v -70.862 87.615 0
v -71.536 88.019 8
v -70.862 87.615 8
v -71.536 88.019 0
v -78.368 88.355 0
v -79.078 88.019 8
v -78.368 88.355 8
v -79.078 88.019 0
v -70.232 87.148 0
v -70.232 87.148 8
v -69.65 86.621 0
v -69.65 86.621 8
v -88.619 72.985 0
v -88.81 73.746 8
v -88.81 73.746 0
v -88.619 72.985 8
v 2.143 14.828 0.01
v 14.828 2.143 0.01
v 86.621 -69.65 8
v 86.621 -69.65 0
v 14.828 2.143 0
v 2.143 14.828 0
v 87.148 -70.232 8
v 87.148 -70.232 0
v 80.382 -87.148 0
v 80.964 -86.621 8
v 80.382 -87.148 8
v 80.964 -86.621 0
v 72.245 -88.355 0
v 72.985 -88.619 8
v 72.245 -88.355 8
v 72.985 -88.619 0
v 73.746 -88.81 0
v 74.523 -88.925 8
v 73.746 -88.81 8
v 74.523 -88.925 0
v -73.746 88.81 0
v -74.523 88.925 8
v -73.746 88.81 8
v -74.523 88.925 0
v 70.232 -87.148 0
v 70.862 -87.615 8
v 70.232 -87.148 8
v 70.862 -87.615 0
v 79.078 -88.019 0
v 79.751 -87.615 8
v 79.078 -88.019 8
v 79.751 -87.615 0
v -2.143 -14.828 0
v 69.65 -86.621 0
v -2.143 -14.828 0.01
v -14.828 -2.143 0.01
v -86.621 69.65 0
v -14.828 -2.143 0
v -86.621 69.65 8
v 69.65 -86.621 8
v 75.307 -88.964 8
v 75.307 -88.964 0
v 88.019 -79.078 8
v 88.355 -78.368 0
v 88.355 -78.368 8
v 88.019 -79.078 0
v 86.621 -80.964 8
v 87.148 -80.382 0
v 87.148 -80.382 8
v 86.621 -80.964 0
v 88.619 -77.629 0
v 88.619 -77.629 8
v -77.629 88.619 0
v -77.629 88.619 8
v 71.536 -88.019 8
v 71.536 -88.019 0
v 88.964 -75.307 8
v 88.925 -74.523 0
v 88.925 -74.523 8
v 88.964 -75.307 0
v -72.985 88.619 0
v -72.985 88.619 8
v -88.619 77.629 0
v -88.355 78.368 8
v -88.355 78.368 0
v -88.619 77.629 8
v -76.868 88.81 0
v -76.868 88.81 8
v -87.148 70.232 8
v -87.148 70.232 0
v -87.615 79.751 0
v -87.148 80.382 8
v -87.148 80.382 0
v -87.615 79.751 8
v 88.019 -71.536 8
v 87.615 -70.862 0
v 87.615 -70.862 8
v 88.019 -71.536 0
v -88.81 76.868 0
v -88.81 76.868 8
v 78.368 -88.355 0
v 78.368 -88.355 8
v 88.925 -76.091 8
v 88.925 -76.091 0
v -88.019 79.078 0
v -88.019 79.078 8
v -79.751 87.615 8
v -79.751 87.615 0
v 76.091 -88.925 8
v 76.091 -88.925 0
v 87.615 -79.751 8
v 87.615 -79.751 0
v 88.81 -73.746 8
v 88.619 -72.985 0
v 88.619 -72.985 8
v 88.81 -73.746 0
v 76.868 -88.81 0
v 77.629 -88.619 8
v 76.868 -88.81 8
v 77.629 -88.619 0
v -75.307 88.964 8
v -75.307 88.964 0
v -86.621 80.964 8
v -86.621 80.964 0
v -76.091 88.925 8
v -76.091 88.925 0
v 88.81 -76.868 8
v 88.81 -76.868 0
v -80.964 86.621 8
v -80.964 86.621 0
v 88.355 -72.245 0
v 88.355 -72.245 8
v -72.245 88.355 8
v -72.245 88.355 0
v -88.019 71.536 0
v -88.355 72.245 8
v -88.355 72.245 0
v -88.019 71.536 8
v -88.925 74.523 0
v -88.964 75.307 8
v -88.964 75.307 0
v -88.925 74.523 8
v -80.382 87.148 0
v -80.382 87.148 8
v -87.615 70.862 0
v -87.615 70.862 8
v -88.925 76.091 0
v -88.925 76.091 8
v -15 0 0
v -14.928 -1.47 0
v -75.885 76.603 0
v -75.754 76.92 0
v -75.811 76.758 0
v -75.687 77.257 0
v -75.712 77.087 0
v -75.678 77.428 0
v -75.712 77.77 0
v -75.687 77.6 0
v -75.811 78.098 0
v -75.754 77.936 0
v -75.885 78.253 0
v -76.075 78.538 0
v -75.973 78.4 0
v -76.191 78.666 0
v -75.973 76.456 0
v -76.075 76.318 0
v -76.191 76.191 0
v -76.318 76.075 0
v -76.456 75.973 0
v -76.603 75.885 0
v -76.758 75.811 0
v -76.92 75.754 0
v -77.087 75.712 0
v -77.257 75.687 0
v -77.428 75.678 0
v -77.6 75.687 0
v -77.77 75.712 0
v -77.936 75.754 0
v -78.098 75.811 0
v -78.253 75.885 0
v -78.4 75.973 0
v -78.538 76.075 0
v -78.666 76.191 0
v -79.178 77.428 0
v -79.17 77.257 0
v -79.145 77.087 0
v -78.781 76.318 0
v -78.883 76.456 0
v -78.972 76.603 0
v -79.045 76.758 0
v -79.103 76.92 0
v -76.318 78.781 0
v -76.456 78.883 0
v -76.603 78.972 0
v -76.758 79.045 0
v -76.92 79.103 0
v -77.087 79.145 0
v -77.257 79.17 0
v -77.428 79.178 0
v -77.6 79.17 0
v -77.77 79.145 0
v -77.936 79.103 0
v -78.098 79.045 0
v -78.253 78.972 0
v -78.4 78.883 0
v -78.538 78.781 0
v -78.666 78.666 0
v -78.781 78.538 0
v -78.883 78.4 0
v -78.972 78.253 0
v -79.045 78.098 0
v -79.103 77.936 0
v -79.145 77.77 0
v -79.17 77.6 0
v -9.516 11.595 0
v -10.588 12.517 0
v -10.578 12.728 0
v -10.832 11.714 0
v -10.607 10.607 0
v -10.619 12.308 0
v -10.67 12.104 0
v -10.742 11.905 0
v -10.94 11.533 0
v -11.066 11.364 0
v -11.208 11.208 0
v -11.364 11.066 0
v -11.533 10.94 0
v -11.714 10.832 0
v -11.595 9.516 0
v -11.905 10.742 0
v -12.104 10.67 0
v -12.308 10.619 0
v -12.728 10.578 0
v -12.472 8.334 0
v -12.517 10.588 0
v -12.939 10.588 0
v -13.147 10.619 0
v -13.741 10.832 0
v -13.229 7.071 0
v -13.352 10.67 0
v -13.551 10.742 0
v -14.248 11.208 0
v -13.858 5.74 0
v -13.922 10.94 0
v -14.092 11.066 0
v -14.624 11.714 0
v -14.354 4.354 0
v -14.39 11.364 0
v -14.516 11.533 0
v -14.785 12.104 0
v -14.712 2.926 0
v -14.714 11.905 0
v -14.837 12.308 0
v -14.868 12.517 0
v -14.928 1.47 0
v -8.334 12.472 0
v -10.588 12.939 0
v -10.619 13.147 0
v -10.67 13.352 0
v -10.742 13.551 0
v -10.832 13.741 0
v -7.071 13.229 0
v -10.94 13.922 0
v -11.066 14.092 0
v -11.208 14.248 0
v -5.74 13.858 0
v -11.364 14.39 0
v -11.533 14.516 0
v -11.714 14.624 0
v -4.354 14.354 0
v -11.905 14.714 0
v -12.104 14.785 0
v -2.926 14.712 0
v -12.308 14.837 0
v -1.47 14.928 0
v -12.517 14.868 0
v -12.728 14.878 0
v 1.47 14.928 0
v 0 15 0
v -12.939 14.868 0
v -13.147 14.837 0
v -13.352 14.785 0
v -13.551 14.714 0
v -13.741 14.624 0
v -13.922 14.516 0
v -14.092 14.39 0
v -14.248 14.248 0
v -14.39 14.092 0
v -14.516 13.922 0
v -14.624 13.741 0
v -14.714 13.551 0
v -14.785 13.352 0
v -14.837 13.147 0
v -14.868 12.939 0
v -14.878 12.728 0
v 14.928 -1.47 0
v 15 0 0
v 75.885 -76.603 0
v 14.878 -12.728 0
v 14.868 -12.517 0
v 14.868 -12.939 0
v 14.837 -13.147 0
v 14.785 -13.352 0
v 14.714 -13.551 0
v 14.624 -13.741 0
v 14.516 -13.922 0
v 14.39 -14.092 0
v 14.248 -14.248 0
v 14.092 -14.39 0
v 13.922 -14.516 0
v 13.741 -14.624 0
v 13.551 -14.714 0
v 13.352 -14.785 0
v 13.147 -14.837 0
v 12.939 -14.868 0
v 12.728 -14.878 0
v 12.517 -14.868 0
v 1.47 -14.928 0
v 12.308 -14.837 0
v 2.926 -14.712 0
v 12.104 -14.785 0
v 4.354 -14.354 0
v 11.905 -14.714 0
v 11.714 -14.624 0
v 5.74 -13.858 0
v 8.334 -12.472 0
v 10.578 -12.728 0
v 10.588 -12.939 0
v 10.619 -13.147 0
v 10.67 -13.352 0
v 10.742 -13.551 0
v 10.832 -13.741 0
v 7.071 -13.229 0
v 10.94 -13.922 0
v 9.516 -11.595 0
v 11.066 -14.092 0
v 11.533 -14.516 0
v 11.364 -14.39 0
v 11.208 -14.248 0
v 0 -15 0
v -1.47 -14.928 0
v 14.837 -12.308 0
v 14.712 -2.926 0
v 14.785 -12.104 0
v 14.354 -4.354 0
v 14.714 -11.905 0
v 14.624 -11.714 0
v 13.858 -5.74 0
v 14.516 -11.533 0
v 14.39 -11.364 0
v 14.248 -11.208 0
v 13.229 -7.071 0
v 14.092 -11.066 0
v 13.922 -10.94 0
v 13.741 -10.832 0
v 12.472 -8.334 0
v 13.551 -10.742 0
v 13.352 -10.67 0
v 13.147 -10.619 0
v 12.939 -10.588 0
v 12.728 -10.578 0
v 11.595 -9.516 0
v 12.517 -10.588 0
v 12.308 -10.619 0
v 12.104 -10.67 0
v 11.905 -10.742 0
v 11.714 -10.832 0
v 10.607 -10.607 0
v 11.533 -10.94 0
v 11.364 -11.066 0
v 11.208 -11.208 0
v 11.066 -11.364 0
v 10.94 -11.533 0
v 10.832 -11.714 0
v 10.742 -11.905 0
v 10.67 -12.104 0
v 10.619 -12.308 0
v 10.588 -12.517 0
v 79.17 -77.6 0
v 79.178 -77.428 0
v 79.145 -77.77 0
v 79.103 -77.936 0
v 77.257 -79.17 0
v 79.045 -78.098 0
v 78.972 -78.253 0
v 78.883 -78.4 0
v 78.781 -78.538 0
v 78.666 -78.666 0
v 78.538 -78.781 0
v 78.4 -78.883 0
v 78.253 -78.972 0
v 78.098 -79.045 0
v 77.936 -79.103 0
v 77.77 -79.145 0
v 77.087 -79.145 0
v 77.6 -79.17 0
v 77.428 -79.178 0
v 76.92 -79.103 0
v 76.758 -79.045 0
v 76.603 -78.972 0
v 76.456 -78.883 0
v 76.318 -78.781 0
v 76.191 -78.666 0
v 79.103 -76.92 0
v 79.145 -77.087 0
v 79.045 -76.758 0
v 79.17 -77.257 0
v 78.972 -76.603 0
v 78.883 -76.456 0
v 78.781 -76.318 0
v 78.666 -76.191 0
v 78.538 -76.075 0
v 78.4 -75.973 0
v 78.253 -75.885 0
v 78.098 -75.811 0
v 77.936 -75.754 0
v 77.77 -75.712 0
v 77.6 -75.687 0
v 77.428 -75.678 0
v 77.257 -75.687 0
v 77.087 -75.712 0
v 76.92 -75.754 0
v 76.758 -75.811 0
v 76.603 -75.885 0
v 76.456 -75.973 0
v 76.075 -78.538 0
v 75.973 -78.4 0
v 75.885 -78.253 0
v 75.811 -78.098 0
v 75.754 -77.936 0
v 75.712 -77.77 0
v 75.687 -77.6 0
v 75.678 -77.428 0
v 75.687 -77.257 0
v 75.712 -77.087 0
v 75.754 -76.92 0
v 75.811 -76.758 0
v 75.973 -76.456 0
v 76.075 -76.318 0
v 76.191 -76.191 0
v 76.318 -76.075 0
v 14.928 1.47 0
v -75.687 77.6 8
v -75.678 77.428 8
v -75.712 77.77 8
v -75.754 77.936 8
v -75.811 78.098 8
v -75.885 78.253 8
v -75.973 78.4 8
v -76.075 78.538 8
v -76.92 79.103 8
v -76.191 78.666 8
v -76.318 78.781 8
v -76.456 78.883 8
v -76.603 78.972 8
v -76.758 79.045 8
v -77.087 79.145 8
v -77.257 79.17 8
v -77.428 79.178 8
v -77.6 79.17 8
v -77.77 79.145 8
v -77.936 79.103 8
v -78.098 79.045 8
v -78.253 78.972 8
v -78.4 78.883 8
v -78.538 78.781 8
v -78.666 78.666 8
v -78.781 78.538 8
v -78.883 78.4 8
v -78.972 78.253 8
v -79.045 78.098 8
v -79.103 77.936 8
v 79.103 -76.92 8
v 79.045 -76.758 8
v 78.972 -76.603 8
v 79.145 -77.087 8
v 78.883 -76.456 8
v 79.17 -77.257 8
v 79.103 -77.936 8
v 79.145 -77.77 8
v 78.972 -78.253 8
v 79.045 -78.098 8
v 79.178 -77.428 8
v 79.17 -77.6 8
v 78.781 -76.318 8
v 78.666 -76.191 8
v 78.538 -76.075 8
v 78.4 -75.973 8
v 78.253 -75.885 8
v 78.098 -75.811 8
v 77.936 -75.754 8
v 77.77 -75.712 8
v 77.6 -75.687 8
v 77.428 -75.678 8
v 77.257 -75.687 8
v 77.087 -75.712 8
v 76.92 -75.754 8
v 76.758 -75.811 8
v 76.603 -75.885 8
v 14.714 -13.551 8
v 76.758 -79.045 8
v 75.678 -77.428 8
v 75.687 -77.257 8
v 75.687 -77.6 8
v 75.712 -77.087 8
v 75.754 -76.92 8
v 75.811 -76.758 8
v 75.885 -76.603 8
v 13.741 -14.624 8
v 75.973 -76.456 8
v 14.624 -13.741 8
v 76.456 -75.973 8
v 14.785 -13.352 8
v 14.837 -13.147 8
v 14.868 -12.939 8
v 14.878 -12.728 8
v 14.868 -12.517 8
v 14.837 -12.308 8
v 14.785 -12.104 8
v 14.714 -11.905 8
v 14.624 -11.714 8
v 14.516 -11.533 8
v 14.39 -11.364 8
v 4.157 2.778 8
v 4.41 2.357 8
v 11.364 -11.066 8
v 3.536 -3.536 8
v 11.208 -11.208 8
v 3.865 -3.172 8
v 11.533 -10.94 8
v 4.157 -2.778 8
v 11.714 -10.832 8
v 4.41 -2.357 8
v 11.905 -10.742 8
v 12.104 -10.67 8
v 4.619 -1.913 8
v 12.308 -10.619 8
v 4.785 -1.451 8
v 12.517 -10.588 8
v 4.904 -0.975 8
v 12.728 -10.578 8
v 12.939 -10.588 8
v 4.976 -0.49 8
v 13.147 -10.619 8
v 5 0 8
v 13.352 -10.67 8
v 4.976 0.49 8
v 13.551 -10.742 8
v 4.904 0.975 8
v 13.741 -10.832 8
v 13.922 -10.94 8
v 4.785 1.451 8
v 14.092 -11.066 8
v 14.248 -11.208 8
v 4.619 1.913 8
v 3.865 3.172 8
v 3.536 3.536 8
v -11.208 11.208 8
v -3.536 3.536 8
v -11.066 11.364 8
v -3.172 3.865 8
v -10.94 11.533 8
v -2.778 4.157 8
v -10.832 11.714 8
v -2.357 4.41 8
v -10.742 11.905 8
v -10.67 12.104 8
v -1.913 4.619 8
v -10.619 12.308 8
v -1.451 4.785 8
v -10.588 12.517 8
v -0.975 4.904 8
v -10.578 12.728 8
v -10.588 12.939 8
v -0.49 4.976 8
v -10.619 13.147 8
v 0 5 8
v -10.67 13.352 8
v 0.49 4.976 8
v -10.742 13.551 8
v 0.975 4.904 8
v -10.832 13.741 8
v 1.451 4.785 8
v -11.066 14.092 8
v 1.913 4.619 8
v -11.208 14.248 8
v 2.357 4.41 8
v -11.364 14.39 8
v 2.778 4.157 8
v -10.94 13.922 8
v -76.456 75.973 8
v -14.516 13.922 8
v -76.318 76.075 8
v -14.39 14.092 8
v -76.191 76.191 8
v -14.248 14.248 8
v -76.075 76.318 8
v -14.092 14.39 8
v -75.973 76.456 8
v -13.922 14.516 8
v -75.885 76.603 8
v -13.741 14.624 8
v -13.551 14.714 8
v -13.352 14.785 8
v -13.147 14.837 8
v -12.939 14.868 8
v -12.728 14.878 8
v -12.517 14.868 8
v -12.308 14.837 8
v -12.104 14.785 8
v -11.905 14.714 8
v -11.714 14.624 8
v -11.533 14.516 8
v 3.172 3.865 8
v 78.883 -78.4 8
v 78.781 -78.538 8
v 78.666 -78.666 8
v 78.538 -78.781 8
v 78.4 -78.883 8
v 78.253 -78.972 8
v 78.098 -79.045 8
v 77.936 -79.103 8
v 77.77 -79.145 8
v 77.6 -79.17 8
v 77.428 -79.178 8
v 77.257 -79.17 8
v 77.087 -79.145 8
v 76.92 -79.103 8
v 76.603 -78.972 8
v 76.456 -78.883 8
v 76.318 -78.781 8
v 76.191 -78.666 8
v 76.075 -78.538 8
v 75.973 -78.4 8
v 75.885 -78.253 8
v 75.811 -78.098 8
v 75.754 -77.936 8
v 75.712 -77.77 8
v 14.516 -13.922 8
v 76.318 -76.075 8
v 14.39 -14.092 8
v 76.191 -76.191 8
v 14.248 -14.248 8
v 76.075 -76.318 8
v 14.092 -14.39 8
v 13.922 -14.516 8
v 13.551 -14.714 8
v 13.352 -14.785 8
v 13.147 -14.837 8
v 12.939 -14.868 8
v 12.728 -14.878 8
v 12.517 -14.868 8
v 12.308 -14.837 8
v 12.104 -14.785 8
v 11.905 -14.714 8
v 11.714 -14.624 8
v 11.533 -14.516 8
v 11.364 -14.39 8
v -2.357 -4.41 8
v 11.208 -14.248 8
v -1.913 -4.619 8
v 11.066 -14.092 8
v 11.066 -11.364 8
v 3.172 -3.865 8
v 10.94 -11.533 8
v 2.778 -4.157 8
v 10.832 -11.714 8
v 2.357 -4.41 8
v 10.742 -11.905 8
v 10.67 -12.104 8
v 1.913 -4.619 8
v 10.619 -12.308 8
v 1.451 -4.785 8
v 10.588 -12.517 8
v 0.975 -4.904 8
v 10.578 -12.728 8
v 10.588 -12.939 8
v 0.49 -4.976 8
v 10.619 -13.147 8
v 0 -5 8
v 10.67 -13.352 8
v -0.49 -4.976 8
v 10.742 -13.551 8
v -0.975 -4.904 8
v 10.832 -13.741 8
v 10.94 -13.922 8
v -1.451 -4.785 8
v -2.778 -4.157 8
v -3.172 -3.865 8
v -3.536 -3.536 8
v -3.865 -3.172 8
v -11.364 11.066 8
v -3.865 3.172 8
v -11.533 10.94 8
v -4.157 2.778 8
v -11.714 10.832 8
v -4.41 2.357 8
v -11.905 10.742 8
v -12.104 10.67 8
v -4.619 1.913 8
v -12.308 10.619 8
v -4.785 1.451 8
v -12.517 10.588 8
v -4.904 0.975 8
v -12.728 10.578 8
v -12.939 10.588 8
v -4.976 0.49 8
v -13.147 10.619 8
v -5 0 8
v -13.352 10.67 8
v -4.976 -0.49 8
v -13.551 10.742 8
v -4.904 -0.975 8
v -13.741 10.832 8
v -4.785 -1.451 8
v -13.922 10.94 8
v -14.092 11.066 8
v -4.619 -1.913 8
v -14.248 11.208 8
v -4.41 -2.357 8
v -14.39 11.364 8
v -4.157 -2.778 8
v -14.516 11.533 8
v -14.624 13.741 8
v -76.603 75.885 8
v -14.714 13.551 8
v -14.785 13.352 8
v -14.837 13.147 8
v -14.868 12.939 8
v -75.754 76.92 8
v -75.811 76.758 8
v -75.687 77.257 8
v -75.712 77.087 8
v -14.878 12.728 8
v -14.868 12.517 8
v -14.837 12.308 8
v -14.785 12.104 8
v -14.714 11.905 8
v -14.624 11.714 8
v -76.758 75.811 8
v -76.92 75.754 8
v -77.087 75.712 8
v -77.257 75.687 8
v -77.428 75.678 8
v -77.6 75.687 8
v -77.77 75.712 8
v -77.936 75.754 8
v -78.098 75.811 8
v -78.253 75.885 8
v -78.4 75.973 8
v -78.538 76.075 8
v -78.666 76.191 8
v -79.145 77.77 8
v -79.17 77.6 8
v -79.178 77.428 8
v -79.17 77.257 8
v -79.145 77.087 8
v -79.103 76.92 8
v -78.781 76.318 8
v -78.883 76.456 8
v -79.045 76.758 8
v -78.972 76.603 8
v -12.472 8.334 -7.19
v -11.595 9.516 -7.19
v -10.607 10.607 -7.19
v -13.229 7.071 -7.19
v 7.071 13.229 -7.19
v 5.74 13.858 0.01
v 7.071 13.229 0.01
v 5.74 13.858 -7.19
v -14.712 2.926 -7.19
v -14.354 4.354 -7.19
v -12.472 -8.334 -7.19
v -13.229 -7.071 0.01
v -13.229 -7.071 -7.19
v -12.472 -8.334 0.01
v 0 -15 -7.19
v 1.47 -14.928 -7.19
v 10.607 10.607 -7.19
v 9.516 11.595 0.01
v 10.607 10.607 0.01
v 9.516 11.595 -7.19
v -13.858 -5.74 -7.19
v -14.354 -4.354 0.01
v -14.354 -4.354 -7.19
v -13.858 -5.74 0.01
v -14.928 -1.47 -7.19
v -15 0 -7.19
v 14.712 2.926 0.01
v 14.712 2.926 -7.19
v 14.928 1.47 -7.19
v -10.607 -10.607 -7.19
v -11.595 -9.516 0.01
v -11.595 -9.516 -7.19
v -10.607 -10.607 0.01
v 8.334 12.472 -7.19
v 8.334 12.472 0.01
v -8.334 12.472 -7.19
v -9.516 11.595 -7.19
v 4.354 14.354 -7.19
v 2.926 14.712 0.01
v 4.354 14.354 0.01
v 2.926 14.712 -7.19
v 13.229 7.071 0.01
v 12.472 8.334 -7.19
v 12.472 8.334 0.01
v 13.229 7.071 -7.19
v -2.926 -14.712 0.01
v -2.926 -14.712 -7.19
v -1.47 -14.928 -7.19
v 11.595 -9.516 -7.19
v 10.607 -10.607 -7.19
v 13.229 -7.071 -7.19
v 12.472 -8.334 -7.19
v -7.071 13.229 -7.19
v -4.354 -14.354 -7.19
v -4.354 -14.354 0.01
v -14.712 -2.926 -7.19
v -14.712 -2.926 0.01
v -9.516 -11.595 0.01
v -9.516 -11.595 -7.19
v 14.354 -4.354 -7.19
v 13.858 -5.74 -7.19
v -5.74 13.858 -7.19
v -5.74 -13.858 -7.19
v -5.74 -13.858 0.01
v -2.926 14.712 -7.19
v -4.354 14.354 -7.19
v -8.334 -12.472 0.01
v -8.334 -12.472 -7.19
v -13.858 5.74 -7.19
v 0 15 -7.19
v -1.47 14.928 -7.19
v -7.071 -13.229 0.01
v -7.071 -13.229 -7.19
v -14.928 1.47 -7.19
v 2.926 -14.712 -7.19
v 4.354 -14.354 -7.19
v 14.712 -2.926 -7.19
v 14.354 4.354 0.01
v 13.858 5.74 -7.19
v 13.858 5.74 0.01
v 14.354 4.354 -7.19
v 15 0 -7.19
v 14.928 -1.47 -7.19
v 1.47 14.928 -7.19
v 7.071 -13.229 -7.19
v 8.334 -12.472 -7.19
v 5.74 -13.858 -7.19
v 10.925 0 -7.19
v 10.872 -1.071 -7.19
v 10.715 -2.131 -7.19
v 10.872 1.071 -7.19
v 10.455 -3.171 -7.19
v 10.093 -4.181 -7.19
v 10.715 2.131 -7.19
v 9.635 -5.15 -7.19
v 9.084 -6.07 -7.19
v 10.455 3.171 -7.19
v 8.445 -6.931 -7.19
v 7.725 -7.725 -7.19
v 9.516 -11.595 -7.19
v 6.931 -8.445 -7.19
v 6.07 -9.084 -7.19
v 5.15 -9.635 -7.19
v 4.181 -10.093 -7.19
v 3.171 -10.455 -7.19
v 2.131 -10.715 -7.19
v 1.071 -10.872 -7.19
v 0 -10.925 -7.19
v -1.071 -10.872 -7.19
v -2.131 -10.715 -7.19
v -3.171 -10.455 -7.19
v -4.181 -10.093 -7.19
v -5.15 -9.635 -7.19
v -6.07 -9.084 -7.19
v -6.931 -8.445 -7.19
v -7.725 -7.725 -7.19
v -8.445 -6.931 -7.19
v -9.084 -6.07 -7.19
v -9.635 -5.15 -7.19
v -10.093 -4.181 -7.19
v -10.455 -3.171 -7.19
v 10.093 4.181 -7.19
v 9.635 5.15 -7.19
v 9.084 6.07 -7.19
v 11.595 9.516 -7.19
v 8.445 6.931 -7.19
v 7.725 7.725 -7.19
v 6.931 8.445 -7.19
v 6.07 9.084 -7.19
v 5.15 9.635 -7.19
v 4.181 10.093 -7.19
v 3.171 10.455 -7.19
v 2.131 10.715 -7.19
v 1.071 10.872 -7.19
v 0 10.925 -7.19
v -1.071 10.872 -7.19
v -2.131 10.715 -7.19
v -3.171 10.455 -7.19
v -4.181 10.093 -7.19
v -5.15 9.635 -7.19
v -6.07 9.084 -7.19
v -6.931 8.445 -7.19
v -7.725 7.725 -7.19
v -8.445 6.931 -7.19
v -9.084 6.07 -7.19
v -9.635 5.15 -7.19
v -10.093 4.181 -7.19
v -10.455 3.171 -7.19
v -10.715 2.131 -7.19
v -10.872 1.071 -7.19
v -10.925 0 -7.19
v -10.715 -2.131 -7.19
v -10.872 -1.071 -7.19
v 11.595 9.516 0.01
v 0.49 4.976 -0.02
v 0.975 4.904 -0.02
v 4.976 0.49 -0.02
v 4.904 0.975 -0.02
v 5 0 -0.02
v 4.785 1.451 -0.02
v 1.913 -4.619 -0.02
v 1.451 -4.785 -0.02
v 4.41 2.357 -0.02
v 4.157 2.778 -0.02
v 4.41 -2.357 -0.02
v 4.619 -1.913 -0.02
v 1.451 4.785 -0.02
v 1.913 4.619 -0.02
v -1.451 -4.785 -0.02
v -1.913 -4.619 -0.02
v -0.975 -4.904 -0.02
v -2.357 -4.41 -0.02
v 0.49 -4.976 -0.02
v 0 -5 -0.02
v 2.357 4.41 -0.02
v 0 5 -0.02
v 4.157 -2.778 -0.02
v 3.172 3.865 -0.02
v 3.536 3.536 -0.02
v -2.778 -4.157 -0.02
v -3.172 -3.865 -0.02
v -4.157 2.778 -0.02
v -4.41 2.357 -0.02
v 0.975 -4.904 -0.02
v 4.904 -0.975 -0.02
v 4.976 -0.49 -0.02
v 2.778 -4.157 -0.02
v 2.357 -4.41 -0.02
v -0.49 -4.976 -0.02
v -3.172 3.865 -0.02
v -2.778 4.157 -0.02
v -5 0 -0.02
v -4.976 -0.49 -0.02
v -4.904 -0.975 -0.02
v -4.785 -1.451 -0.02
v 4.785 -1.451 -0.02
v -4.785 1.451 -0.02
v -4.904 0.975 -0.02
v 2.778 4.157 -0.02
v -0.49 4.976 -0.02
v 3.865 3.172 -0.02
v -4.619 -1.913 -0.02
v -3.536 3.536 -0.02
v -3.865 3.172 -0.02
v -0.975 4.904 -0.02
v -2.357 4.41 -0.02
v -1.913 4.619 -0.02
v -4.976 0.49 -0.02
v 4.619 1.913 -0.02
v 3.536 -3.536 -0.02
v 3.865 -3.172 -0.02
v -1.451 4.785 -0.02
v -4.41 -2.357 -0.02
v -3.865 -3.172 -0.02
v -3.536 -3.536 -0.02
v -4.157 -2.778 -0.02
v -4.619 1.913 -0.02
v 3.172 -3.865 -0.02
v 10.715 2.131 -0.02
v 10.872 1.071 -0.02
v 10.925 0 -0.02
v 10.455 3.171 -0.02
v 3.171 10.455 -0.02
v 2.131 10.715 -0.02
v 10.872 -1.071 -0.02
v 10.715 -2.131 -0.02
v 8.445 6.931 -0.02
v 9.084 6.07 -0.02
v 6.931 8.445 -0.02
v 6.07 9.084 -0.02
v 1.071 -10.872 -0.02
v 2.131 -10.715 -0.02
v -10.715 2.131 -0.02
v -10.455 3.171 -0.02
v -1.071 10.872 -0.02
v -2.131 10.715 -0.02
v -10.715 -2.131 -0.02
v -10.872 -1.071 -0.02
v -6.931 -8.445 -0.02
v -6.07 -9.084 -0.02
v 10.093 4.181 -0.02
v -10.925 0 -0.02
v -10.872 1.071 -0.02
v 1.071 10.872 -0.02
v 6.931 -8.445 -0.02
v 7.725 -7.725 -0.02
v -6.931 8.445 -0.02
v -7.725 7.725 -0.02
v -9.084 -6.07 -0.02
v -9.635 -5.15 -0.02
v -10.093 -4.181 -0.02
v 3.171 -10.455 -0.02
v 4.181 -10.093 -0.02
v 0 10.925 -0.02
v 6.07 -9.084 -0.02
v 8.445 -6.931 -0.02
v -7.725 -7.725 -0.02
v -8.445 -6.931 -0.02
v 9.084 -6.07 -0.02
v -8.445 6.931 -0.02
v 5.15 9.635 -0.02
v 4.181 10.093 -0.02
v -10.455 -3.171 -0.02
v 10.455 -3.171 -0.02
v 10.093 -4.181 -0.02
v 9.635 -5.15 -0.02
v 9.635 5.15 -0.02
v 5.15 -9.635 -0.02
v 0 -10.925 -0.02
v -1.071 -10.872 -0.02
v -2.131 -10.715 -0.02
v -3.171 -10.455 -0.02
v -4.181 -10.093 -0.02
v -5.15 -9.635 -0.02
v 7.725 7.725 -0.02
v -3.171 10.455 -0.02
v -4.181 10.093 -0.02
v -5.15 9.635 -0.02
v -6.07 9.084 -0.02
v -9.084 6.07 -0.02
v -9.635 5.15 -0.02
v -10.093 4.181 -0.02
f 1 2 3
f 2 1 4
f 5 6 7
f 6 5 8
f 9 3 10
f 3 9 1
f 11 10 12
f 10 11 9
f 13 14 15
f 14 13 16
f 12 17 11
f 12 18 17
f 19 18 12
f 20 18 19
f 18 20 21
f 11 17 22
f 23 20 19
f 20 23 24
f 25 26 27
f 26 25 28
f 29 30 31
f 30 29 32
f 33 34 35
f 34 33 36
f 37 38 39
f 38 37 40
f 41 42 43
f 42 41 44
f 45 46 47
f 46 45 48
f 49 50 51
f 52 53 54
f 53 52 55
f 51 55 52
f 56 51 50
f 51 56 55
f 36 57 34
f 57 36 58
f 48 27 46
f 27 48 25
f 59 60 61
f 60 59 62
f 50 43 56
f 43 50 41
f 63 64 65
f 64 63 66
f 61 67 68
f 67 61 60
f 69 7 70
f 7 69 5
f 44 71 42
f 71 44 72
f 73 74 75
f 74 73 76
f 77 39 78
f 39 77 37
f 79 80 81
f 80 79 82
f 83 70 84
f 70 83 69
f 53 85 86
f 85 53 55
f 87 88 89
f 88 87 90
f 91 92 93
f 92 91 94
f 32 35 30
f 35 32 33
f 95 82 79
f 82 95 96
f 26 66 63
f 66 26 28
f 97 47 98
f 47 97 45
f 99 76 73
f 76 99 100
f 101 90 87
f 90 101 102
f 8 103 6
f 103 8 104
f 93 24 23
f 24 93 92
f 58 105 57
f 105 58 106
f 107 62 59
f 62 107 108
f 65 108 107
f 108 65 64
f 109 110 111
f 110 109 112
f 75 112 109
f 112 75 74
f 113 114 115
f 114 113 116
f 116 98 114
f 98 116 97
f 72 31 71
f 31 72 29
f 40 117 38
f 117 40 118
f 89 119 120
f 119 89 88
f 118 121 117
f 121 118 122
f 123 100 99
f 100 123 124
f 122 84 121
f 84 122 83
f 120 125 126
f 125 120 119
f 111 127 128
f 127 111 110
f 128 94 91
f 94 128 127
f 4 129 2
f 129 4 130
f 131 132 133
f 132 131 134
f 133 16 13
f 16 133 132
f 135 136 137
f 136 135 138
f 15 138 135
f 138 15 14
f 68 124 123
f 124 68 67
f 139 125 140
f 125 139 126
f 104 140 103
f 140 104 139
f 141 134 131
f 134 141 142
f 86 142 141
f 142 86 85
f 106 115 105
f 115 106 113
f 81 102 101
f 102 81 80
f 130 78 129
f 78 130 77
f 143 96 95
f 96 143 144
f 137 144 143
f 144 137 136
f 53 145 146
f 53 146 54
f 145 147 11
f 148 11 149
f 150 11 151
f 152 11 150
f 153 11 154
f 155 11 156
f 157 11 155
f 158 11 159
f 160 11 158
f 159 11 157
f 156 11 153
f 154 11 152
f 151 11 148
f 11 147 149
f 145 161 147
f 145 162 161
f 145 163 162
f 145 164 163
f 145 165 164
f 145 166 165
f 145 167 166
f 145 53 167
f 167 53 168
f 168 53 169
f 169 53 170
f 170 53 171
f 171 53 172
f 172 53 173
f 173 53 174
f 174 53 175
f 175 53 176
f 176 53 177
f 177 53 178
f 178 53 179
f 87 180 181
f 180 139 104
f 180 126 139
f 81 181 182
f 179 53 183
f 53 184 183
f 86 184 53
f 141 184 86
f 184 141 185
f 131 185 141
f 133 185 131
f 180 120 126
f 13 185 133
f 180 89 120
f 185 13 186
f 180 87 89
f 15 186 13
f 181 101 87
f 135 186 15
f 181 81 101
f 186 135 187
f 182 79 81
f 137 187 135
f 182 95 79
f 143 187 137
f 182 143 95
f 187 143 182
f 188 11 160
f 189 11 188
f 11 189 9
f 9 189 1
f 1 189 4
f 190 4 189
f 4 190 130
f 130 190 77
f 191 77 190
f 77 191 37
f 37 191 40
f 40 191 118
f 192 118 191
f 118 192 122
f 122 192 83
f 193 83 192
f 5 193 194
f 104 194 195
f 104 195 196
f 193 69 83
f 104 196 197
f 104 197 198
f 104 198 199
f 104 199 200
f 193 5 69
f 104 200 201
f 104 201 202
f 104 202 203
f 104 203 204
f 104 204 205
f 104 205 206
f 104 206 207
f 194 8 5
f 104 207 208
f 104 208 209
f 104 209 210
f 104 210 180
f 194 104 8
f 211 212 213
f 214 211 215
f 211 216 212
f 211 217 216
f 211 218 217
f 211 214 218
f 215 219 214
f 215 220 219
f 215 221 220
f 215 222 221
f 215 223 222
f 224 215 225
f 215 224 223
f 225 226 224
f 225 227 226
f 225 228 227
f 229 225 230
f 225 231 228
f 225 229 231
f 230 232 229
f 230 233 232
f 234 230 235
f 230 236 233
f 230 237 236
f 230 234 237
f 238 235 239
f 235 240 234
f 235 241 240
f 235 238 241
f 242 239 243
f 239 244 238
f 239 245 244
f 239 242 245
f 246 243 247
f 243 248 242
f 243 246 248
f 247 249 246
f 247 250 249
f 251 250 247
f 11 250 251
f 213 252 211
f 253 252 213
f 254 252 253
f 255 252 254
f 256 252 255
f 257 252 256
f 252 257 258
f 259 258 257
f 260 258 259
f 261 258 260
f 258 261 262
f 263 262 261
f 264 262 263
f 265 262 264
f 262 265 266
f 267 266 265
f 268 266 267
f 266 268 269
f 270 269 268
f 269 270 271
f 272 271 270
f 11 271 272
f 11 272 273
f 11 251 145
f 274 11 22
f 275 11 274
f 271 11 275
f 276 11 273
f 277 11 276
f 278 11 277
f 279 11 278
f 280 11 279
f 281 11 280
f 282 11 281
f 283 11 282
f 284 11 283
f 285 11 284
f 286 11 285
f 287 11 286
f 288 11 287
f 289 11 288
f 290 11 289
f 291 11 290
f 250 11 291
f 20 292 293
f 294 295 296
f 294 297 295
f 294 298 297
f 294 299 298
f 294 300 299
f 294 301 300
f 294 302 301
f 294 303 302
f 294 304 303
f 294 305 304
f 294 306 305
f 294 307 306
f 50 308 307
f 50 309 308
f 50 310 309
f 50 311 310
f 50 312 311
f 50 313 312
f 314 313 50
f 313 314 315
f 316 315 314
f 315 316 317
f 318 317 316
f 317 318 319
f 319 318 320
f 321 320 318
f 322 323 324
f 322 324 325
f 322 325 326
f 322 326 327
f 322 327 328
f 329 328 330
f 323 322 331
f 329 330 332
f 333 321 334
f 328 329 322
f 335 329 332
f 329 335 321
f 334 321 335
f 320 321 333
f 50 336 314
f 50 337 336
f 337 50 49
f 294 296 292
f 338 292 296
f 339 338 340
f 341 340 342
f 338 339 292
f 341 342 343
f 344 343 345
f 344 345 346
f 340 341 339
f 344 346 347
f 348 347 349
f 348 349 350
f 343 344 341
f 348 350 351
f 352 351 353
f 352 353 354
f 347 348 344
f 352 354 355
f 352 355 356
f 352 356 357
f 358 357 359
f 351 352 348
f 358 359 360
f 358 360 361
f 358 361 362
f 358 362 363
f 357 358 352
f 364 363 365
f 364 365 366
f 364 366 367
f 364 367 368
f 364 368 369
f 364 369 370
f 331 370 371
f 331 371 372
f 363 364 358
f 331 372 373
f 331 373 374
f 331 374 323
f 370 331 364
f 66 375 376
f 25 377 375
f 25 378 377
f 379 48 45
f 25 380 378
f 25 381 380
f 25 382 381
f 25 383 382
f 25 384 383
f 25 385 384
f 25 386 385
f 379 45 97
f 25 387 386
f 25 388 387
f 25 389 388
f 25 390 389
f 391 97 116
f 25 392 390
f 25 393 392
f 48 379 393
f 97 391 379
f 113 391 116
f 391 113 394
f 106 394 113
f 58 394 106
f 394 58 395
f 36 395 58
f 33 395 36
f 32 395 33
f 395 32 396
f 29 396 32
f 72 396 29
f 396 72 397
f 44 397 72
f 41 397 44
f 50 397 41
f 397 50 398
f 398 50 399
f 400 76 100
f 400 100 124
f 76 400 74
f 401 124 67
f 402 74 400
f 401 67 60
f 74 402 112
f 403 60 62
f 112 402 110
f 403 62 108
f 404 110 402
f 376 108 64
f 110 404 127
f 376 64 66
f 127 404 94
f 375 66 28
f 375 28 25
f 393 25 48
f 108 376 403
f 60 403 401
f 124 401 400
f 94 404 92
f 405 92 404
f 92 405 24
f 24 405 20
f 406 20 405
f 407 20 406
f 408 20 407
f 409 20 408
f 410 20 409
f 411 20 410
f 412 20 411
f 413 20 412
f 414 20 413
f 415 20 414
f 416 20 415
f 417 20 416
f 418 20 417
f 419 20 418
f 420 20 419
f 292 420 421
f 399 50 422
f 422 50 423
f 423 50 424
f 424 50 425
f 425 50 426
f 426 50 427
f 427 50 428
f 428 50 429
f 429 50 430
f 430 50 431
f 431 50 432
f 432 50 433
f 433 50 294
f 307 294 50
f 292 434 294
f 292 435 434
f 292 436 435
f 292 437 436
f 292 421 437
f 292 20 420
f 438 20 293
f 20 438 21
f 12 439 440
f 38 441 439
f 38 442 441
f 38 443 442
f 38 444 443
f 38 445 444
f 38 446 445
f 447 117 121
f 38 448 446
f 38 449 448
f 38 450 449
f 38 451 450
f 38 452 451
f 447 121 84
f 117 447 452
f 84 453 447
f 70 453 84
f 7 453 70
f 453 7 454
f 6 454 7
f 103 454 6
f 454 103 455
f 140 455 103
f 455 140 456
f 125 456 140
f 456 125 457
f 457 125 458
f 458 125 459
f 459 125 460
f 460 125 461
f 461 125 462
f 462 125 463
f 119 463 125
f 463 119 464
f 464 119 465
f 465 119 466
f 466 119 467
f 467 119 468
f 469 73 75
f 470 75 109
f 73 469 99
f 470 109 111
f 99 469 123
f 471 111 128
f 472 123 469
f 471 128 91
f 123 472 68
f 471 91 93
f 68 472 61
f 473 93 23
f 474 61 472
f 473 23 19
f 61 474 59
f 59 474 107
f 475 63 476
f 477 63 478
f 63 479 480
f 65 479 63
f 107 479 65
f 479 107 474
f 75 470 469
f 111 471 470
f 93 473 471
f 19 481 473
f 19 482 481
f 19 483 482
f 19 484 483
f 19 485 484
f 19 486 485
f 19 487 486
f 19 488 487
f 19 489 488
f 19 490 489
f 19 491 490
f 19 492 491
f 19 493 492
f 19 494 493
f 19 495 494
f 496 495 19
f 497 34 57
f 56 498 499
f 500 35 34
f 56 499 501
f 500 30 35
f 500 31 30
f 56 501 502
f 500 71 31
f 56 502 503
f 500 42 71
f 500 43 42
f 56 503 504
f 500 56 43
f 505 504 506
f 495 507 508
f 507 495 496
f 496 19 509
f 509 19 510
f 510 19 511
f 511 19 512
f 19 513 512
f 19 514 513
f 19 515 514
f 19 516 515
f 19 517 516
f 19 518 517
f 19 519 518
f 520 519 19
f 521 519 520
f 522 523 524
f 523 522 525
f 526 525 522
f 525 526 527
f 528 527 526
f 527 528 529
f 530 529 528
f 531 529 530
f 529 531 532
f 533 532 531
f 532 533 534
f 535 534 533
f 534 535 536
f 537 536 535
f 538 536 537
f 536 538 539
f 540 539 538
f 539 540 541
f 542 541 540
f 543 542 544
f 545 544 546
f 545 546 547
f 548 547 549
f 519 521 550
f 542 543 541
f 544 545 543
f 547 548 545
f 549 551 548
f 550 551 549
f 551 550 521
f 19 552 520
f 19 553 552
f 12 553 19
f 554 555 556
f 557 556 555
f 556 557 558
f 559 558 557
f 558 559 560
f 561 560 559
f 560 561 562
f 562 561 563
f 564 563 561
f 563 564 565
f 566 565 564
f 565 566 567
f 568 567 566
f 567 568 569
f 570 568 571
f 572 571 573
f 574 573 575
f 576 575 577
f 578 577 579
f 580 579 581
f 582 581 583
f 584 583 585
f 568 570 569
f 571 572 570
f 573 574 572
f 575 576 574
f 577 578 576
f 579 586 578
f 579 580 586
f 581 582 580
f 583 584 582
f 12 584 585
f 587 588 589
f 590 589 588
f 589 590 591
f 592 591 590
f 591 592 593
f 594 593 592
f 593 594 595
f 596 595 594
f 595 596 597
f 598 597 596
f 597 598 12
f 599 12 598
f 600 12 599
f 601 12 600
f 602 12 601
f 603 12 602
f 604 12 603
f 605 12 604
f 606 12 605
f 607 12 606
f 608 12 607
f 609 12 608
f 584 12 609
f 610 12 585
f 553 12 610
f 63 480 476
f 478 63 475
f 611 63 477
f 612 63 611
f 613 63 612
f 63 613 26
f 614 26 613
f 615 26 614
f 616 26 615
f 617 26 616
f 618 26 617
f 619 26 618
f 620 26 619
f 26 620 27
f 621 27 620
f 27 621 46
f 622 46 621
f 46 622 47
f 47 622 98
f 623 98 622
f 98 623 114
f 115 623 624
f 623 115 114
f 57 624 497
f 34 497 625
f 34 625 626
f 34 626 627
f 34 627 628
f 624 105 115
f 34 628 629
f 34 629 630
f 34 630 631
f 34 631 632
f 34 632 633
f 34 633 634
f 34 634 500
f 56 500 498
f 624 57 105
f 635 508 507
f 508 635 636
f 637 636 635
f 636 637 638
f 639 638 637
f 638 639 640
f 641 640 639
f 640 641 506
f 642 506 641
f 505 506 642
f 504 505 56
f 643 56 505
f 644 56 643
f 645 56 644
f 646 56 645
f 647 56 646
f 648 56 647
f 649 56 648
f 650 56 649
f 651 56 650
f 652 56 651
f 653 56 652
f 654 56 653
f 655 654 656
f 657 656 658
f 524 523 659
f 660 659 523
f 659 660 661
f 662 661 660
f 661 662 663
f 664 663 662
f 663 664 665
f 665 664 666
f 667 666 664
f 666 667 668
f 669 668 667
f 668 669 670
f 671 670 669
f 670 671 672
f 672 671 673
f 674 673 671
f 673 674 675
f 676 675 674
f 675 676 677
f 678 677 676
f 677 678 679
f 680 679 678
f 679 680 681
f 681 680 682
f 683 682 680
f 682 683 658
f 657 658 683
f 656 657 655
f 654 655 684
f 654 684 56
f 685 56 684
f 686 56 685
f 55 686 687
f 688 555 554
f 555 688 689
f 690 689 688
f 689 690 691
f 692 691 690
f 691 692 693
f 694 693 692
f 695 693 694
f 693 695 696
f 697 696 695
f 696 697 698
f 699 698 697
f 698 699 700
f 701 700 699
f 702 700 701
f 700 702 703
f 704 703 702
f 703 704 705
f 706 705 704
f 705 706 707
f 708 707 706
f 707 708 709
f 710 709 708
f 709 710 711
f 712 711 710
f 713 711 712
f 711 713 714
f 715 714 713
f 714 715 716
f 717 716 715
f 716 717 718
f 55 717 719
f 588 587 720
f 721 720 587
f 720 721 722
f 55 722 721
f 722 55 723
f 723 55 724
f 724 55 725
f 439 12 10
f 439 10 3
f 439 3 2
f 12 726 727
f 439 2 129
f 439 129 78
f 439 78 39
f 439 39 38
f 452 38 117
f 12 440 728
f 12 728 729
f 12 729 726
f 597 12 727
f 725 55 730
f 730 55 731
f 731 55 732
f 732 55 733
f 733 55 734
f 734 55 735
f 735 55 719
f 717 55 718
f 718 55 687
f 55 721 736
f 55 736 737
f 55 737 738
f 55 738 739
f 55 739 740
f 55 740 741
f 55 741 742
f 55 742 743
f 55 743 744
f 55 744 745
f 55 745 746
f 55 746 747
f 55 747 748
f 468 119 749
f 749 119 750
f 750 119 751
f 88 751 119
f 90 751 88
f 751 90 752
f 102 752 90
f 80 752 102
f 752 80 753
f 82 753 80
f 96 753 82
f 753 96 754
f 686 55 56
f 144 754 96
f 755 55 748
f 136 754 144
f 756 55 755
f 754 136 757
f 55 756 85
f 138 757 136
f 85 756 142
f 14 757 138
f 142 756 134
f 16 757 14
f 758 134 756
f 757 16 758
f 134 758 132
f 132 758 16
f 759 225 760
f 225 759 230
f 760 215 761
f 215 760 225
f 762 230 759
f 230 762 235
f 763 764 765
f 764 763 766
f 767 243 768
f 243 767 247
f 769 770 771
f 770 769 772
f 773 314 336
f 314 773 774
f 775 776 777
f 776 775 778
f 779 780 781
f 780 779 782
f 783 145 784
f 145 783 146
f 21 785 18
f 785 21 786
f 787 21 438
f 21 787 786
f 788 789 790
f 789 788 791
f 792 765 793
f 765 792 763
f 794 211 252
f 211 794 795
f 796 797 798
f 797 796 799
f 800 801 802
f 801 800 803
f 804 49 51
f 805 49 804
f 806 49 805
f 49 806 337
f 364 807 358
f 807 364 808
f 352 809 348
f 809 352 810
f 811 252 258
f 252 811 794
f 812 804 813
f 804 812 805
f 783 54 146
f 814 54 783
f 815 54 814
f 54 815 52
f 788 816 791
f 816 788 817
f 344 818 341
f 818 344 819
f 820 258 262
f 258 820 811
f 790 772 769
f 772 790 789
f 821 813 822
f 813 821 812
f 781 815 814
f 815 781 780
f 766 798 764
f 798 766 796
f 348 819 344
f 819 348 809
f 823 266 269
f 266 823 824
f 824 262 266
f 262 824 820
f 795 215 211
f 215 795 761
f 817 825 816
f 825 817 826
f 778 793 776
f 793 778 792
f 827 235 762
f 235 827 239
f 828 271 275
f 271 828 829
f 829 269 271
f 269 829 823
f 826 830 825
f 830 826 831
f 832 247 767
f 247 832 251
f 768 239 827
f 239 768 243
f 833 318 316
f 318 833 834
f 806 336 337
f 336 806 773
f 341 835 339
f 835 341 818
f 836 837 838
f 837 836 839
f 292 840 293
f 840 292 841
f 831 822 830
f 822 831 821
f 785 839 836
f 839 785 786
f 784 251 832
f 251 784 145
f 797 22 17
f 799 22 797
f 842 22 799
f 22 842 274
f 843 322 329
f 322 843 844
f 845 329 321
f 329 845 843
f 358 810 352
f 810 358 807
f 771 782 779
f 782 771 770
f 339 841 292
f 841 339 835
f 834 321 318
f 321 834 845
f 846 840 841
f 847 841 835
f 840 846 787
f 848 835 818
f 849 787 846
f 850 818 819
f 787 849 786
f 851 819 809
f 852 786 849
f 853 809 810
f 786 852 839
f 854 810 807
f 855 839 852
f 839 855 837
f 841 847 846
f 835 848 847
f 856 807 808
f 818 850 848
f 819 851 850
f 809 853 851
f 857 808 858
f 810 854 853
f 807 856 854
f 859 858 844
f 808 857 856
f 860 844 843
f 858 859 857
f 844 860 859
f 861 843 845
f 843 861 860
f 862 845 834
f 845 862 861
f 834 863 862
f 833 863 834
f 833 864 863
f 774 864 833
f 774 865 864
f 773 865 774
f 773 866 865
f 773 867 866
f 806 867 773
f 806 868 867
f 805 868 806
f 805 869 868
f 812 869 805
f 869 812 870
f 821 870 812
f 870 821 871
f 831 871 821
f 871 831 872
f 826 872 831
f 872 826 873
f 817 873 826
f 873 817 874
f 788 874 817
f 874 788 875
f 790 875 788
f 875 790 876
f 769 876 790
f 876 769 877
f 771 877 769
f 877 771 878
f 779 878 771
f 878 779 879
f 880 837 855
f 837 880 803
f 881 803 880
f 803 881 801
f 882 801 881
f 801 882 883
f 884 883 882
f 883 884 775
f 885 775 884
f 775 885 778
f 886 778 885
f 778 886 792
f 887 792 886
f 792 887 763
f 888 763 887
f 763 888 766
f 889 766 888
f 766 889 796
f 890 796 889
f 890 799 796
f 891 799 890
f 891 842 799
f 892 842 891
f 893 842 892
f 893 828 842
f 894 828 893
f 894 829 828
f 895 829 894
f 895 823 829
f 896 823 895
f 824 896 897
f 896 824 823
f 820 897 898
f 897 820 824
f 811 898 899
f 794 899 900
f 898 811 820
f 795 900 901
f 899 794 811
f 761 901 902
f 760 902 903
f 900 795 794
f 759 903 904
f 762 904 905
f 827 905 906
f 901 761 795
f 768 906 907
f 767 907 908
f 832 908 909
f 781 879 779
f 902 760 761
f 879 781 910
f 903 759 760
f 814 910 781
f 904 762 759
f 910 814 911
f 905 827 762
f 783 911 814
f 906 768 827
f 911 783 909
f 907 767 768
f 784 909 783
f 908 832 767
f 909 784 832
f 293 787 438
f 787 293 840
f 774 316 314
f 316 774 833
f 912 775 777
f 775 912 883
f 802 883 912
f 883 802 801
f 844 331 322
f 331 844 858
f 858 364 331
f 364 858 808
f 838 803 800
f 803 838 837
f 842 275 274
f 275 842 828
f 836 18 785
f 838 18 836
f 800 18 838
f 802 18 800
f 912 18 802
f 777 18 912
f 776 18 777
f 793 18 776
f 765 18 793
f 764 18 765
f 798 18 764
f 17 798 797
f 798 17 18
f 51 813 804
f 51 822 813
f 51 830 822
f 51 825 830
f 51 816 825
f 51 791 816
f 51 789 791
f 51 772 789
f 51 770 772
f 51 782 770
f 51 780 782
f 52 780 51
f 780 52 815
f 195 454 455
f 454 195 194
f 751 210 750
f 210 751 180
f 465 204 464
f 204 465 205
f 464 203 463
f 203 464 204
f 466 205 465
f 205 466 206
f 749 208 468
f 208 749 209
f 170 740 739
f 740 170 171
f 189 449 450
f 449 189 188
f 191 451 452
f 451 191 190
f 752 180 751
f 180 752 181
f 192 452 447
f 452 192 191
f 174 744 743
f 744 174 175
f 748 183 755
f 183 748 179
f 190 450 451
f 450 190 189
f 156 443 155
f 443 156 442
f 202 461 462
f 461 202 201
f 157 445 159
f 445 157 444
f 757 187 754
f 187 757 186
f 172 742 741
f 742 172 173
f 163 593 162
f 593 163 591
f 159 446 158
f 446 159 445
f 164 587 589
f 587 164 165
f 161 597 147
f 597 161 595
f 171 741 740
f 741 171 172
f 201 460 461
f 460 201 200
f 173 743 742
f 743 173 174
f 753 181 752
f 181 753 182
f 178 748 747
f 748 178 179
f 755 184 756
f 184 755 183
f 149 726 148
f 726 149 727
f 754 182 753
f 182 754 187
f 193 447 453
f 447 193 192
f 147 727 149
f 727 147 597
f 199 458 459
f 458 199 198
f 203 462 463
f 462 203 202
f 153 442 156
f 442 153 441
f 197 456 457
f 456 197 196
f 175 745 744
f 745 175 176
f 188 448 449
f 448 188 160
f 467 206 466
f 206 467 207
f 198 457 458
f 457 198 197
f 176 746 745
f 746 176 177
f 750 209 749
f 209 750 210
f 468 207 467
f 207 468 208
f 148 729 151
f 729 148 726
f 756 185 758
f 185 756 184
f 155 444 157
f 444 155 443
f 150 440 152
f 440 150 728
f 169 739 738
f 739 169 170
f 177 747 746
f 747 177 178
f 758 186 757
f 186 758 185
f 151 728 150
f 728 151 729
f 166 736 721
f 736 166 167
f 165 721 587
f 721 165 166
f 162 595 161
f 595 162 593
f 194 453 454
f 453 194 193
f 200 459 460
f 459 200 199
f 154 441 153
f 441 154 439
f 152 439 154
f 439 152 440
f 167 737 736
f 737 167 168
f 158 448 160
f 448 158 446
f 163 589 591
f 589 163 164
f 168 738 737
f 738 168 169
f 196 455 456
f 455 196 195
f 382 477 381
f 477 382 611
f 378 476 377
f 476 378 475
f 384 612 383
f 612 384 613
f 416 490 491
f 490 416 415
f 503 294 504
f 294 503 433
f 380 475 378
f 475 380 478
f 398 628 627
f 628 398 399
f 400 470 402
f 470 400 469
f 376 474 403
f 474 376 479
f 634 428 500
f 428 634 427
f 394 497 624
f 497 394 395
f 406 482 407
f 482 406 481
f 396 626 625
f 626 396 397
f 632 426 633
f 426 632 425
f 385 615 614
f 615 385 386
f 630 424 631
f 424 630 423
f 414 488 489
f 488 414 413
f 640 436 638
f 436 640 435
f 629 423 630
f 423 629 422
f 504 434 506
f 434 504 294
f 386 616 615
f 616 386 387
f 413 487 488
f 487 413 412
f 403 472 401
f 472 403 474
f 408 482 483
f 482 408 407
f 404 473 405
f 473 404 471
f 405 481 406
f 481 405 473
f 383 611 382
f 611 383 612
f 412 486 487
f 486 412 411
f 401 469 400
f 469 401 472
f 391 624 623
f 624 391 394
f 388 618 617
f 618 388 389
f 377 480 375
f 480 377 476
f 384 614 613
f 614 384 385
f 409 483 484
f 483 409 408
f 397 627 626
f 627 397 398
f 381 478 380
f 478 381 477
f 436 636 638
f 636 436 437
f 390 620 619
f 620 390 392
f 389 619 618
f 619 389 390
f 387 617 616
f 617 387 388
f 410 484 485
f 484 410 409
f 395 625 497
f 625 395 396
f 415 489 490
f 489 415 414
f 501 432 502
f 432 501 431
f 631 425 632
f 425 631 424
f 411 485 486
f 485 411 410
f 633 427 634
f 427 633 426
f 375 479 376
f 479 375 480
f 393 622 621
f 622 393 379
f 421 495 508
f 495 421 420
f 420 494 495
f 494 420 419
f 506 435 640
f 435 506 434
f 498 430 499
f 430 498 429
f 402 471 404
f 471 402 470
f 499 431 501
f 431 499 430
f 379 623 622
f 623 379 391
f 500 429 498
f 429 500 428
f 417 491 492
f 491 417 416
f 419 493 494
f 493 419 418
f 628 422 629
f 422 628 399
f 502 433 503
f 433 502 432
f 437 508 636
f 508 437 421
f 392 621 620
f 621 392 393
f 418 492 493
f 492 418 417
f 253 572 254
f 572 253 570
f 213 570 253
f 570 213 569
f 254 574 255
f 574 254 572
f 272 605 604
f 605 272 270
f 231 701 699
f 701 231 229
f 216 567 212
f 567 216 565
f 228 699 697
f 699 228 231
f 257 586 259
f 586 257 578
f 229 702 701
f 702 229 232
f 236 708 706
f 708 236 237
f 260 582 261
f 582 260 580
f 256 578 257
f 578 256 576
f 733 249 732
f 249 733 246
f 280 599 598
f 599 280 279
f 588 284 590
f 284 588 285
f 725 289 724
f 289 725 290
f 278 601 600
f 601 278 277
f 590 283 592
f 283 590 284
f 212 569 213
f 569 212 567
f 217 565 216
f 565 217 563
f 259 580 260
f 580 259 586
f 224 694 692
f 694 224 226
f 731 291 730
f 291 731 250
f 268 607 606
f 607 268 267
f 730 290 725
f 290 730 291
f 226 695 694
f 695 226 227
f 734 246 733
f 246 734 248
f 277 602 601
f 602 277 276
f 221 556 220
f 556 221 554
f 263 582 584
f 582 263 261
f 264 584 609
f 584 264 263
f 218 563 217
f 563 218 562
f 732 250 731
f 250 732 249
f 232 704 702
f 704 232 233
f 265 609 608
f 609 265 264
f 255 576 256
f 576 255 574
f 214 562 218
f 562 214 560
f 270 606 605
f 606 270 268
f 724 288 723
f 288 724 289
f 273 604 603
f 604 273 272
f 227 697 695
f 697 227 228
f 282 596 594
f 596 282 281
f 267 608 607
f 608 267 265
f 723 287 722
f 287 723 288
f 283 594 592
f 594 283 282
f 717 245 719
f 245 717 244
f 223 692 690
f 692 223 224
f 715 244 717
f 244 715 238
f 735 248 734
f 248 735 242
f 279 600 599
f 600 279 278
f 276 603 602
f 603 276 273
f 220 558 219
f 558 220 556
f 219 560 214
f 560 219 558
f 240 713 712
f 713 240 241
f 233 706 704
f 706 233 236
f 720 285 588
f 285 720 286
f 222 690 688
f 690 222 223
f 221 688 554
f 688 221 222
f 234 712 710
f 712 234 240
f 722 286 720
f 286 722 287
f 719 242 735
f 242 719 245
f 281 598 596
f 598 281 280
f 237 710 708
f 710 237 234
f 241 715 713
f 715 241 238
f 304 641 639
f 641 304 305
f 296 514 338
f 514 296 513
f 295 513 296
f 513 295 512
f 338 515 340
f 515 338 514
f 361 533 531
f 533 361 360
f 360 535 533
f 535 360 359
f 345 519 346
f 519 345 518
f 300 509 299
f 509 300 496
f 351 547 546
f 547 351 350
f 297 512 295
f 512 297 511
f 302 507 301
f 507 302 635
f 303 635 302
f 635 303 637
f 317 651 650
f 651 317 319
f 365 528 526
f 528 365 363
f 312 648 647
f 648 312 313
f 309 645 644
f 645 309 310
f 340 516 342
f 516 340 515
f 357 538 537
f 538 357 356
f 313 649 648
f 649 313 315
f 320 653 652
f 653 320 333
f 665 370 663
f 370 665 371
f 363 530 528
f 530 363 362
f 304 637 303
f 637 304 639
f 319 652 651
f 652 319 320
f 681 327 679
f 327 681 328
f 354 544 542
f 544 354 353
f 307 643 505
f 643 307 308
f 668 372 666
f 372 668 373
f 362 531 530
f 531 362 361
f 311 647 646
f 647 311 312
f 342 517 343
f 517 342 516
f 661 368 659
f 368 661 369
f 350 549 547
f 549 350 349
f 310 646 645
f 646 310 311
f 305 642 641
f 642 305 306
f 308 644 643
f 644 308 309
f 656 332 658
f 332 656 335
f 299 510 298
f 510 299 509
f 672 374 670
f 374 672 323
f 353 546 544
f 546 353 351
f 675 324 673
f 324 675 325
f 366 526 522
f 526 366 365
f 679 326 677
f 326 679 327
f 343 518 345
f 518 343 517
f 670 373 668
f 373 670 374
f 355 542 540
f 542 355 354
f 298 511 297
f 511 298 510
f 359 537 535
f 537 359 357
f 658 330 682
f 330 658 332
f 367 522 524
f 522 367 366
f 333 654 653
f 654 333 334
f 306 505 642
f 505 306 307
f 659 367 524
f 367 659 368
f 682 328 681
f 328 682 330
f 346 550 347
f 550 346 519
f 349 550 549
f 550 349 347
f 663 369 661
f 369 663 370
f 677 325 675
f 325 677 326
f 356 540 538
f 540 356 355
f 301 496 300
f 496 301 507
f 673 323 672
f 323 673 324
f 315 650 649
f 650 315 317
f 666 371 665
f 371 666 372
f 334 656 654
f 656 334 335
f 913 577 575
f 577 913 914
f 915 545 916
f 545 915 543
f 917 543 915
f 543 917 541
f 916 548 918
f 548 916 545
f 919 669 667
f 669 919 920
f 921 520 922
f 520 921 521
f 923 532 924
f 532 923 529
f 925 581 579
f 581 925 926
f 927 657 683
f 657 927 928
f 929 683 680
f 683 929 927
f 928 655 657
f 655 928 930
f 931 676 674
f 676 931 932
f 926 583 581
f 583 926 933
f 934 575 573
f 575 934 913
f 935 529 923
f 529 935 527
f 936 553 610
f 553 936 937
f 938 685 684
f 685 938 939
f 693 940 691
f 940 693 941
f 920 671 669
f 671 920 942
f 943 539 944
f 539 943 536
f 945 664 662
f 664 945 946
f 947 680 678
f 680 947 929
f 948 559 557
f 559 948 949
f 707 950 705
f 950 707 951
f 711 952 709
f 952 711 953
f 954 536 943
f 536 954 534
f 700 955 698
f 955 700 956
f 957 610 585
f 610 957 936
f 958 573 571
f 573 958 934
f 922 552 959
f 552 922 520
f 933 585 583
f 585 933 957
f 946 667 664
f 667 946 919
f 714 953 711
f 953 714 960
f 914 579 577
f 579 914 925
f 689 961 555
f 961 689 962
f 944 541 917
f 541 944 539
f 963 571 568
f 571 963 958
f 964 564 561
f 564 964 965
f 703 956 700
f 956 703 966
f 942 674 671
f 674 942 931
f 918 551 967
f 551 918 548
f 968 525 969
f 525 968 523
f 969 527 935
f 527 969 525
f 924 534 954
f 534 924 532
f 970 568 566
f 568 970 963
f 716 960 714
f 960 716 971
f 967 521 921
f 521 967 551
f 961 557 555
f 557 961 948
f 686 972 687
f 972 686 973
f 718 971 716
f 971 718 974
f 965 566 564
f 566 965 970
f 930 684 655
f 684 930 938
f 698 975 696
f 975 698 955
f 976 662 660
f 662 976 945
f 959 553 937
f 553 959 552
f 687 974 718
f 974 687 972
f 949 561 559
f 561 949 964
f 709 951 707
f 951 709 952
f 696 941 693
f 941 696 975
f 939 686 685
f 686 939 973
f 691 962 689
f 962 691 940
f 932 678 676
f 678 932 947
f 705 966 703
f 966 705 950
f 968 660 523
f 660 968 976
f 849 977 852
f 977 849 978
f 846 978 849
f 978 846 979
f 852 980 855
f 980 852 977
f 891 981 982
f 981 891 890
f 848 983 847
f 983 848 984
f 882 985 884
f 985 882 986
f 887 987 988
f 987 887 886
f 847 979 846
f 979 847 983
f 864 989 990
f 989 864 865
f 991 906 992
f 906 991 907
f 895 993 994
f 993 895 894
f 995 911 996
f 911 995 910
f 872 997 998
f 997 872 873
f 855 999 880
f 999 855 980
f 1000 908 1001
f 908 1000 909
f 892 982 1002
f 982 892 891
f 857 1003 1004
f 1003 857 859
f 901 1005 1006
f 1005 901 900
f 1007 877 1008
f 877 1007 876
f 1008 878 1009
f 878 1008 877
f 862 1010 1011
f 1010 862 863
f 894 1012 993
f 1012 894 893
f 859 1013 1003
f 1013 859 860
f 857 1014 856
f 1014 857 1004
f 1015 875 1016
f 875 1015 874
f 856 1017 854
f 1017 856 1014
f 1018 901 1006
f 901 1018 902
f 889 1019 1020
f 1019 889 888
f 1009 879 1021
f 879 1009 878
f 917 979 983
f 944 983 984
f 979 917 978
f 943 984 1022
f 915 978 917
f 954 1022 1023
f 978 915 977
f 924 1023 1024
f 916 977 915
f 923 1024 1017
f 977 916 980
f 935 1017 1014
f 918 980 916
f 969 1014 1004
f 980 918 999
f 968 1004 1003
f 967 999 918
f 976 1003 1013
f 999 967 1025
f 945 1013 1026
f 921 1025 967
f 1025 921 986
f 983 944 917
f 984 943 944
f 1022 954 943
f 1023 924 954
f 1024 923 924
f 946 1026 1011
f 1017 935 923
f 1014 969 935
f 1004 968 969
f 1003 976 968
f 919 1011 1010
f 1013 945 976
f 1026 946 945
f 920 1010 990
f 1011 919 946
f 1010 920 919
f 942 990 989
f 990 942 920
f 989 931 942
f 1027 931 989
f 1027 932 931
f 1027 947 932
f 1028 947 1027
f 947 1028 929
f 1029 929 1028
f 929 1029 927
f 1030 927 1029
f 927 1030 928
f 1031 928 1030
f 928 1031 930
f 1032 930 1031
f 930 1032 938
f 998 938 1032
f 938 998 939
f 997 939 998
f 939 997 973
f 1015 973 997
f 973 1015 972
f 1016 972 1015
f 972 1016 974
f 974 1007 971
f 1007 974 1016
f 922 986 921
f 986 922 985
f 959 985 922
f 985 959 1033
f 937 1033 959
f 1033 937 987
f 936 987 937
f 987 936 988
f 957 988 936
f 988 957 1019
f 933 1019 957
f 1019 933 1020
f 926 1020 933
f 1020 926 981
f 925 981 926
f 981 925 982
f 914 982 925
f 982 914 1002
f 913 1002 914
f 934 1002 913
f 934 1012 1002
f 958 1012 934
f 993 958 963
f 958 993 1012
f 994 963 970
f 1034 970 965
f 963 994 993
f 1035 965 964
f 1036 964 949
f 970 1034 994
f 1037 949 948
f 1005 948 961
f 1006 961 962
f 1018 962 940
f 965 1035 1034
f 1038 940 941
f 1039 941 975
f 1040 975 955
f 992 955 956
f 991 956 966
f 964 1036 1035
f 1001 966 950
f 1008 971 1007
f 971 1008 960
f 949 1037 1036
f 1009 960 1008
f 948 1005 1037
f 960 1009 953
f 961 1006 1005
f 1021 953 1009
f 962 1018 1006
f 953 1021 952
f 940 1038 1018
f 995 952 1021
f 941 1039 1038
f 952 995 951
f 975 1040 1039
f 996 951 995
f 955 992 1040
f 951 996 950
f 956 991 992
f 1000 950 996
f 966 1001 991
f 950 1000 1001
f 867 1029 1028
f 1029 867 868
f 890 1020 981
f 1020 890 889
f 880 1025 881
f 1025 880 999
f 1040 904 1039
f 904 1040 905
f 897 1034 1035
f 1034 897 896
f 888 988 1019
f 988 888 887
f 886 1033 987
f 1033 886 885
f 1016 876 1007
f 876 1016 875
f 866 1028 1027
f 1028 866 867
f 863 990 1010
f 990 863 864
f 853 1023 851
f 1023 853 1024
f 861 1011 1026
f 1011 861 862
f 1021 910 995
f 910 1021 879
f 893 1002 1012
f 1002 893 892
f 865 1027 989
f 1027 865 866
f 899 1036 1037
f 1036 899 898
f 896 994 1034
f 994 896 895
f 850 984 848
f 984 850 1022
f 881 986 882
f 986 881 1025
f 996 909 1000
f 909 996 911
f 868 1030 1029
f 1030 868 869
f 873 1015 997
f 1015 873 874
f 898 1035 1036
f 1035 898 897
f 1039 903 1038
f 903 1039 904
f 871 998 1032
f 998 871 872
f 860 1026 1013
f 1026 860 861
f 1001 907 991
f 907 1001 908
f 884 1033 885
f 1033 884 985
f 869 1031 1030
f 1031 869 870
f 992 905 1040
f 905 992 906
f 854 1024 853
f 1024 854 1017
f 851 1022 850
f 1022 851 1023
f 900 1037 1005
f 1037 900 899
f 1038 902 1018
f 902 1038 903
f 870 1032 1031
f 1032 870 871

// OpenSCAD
// Gen-CK — rear BEARING BRIDGE (bar endbell, 2026-10-10): a 608 boss on a 24 mm wide bar that spans the
// two frame rods at 135 deg and 135+180 deg (R = flange_bolt_r). The front bridge uses the rods at 45/225 deg, the rear
// bridge the rods at 135/315 deg, so the two bridges cross at 90 deg and the stator is held at 4 points.
// A bar instead of a full disc is what lets this big-ring kit fit ONE 410 mm plate. Print flat face DOWN (boss up, no supports).
// Brace holes (temporary M4 jack rods, R = brace_r) sit on the bar axis.
include <parameters.scad>;
$fn = 64;
bar_w = 24;
bar_len = 2 * (flange_bolt_r + 9);
module bar_2d() { offset(r=8) offset(delta=-8) square([bar_len, bar_w], center=true); }
difference() {
    rotate([0, 0, 135]) union() {
        linear_extrude(endbell_thick) bar_2d();
        translate([0, 0, -bearing_h + 0.01]) cylinder(d=30, h=bearing_h);
    }
    translate([0, 0, -bearing_h - 0.1]) cylinder(d=endbell_shaft_clear, h=50);
    translate([0, 0, -bearing_h - 0.02]) cylinder(d=bearing_d, h=bearing_h);
    for (s = [0, 180]) rotate([0, 0, 135 + s]) translate([flange_bolt_r, 0, -20]) cylinder(d=m3_clear, h=60);
    for (a = brace_angles) translate([brace_r*cos(a), brace_r*sin(a), -20]) cylinder(d=brace_d, h=50);
}
